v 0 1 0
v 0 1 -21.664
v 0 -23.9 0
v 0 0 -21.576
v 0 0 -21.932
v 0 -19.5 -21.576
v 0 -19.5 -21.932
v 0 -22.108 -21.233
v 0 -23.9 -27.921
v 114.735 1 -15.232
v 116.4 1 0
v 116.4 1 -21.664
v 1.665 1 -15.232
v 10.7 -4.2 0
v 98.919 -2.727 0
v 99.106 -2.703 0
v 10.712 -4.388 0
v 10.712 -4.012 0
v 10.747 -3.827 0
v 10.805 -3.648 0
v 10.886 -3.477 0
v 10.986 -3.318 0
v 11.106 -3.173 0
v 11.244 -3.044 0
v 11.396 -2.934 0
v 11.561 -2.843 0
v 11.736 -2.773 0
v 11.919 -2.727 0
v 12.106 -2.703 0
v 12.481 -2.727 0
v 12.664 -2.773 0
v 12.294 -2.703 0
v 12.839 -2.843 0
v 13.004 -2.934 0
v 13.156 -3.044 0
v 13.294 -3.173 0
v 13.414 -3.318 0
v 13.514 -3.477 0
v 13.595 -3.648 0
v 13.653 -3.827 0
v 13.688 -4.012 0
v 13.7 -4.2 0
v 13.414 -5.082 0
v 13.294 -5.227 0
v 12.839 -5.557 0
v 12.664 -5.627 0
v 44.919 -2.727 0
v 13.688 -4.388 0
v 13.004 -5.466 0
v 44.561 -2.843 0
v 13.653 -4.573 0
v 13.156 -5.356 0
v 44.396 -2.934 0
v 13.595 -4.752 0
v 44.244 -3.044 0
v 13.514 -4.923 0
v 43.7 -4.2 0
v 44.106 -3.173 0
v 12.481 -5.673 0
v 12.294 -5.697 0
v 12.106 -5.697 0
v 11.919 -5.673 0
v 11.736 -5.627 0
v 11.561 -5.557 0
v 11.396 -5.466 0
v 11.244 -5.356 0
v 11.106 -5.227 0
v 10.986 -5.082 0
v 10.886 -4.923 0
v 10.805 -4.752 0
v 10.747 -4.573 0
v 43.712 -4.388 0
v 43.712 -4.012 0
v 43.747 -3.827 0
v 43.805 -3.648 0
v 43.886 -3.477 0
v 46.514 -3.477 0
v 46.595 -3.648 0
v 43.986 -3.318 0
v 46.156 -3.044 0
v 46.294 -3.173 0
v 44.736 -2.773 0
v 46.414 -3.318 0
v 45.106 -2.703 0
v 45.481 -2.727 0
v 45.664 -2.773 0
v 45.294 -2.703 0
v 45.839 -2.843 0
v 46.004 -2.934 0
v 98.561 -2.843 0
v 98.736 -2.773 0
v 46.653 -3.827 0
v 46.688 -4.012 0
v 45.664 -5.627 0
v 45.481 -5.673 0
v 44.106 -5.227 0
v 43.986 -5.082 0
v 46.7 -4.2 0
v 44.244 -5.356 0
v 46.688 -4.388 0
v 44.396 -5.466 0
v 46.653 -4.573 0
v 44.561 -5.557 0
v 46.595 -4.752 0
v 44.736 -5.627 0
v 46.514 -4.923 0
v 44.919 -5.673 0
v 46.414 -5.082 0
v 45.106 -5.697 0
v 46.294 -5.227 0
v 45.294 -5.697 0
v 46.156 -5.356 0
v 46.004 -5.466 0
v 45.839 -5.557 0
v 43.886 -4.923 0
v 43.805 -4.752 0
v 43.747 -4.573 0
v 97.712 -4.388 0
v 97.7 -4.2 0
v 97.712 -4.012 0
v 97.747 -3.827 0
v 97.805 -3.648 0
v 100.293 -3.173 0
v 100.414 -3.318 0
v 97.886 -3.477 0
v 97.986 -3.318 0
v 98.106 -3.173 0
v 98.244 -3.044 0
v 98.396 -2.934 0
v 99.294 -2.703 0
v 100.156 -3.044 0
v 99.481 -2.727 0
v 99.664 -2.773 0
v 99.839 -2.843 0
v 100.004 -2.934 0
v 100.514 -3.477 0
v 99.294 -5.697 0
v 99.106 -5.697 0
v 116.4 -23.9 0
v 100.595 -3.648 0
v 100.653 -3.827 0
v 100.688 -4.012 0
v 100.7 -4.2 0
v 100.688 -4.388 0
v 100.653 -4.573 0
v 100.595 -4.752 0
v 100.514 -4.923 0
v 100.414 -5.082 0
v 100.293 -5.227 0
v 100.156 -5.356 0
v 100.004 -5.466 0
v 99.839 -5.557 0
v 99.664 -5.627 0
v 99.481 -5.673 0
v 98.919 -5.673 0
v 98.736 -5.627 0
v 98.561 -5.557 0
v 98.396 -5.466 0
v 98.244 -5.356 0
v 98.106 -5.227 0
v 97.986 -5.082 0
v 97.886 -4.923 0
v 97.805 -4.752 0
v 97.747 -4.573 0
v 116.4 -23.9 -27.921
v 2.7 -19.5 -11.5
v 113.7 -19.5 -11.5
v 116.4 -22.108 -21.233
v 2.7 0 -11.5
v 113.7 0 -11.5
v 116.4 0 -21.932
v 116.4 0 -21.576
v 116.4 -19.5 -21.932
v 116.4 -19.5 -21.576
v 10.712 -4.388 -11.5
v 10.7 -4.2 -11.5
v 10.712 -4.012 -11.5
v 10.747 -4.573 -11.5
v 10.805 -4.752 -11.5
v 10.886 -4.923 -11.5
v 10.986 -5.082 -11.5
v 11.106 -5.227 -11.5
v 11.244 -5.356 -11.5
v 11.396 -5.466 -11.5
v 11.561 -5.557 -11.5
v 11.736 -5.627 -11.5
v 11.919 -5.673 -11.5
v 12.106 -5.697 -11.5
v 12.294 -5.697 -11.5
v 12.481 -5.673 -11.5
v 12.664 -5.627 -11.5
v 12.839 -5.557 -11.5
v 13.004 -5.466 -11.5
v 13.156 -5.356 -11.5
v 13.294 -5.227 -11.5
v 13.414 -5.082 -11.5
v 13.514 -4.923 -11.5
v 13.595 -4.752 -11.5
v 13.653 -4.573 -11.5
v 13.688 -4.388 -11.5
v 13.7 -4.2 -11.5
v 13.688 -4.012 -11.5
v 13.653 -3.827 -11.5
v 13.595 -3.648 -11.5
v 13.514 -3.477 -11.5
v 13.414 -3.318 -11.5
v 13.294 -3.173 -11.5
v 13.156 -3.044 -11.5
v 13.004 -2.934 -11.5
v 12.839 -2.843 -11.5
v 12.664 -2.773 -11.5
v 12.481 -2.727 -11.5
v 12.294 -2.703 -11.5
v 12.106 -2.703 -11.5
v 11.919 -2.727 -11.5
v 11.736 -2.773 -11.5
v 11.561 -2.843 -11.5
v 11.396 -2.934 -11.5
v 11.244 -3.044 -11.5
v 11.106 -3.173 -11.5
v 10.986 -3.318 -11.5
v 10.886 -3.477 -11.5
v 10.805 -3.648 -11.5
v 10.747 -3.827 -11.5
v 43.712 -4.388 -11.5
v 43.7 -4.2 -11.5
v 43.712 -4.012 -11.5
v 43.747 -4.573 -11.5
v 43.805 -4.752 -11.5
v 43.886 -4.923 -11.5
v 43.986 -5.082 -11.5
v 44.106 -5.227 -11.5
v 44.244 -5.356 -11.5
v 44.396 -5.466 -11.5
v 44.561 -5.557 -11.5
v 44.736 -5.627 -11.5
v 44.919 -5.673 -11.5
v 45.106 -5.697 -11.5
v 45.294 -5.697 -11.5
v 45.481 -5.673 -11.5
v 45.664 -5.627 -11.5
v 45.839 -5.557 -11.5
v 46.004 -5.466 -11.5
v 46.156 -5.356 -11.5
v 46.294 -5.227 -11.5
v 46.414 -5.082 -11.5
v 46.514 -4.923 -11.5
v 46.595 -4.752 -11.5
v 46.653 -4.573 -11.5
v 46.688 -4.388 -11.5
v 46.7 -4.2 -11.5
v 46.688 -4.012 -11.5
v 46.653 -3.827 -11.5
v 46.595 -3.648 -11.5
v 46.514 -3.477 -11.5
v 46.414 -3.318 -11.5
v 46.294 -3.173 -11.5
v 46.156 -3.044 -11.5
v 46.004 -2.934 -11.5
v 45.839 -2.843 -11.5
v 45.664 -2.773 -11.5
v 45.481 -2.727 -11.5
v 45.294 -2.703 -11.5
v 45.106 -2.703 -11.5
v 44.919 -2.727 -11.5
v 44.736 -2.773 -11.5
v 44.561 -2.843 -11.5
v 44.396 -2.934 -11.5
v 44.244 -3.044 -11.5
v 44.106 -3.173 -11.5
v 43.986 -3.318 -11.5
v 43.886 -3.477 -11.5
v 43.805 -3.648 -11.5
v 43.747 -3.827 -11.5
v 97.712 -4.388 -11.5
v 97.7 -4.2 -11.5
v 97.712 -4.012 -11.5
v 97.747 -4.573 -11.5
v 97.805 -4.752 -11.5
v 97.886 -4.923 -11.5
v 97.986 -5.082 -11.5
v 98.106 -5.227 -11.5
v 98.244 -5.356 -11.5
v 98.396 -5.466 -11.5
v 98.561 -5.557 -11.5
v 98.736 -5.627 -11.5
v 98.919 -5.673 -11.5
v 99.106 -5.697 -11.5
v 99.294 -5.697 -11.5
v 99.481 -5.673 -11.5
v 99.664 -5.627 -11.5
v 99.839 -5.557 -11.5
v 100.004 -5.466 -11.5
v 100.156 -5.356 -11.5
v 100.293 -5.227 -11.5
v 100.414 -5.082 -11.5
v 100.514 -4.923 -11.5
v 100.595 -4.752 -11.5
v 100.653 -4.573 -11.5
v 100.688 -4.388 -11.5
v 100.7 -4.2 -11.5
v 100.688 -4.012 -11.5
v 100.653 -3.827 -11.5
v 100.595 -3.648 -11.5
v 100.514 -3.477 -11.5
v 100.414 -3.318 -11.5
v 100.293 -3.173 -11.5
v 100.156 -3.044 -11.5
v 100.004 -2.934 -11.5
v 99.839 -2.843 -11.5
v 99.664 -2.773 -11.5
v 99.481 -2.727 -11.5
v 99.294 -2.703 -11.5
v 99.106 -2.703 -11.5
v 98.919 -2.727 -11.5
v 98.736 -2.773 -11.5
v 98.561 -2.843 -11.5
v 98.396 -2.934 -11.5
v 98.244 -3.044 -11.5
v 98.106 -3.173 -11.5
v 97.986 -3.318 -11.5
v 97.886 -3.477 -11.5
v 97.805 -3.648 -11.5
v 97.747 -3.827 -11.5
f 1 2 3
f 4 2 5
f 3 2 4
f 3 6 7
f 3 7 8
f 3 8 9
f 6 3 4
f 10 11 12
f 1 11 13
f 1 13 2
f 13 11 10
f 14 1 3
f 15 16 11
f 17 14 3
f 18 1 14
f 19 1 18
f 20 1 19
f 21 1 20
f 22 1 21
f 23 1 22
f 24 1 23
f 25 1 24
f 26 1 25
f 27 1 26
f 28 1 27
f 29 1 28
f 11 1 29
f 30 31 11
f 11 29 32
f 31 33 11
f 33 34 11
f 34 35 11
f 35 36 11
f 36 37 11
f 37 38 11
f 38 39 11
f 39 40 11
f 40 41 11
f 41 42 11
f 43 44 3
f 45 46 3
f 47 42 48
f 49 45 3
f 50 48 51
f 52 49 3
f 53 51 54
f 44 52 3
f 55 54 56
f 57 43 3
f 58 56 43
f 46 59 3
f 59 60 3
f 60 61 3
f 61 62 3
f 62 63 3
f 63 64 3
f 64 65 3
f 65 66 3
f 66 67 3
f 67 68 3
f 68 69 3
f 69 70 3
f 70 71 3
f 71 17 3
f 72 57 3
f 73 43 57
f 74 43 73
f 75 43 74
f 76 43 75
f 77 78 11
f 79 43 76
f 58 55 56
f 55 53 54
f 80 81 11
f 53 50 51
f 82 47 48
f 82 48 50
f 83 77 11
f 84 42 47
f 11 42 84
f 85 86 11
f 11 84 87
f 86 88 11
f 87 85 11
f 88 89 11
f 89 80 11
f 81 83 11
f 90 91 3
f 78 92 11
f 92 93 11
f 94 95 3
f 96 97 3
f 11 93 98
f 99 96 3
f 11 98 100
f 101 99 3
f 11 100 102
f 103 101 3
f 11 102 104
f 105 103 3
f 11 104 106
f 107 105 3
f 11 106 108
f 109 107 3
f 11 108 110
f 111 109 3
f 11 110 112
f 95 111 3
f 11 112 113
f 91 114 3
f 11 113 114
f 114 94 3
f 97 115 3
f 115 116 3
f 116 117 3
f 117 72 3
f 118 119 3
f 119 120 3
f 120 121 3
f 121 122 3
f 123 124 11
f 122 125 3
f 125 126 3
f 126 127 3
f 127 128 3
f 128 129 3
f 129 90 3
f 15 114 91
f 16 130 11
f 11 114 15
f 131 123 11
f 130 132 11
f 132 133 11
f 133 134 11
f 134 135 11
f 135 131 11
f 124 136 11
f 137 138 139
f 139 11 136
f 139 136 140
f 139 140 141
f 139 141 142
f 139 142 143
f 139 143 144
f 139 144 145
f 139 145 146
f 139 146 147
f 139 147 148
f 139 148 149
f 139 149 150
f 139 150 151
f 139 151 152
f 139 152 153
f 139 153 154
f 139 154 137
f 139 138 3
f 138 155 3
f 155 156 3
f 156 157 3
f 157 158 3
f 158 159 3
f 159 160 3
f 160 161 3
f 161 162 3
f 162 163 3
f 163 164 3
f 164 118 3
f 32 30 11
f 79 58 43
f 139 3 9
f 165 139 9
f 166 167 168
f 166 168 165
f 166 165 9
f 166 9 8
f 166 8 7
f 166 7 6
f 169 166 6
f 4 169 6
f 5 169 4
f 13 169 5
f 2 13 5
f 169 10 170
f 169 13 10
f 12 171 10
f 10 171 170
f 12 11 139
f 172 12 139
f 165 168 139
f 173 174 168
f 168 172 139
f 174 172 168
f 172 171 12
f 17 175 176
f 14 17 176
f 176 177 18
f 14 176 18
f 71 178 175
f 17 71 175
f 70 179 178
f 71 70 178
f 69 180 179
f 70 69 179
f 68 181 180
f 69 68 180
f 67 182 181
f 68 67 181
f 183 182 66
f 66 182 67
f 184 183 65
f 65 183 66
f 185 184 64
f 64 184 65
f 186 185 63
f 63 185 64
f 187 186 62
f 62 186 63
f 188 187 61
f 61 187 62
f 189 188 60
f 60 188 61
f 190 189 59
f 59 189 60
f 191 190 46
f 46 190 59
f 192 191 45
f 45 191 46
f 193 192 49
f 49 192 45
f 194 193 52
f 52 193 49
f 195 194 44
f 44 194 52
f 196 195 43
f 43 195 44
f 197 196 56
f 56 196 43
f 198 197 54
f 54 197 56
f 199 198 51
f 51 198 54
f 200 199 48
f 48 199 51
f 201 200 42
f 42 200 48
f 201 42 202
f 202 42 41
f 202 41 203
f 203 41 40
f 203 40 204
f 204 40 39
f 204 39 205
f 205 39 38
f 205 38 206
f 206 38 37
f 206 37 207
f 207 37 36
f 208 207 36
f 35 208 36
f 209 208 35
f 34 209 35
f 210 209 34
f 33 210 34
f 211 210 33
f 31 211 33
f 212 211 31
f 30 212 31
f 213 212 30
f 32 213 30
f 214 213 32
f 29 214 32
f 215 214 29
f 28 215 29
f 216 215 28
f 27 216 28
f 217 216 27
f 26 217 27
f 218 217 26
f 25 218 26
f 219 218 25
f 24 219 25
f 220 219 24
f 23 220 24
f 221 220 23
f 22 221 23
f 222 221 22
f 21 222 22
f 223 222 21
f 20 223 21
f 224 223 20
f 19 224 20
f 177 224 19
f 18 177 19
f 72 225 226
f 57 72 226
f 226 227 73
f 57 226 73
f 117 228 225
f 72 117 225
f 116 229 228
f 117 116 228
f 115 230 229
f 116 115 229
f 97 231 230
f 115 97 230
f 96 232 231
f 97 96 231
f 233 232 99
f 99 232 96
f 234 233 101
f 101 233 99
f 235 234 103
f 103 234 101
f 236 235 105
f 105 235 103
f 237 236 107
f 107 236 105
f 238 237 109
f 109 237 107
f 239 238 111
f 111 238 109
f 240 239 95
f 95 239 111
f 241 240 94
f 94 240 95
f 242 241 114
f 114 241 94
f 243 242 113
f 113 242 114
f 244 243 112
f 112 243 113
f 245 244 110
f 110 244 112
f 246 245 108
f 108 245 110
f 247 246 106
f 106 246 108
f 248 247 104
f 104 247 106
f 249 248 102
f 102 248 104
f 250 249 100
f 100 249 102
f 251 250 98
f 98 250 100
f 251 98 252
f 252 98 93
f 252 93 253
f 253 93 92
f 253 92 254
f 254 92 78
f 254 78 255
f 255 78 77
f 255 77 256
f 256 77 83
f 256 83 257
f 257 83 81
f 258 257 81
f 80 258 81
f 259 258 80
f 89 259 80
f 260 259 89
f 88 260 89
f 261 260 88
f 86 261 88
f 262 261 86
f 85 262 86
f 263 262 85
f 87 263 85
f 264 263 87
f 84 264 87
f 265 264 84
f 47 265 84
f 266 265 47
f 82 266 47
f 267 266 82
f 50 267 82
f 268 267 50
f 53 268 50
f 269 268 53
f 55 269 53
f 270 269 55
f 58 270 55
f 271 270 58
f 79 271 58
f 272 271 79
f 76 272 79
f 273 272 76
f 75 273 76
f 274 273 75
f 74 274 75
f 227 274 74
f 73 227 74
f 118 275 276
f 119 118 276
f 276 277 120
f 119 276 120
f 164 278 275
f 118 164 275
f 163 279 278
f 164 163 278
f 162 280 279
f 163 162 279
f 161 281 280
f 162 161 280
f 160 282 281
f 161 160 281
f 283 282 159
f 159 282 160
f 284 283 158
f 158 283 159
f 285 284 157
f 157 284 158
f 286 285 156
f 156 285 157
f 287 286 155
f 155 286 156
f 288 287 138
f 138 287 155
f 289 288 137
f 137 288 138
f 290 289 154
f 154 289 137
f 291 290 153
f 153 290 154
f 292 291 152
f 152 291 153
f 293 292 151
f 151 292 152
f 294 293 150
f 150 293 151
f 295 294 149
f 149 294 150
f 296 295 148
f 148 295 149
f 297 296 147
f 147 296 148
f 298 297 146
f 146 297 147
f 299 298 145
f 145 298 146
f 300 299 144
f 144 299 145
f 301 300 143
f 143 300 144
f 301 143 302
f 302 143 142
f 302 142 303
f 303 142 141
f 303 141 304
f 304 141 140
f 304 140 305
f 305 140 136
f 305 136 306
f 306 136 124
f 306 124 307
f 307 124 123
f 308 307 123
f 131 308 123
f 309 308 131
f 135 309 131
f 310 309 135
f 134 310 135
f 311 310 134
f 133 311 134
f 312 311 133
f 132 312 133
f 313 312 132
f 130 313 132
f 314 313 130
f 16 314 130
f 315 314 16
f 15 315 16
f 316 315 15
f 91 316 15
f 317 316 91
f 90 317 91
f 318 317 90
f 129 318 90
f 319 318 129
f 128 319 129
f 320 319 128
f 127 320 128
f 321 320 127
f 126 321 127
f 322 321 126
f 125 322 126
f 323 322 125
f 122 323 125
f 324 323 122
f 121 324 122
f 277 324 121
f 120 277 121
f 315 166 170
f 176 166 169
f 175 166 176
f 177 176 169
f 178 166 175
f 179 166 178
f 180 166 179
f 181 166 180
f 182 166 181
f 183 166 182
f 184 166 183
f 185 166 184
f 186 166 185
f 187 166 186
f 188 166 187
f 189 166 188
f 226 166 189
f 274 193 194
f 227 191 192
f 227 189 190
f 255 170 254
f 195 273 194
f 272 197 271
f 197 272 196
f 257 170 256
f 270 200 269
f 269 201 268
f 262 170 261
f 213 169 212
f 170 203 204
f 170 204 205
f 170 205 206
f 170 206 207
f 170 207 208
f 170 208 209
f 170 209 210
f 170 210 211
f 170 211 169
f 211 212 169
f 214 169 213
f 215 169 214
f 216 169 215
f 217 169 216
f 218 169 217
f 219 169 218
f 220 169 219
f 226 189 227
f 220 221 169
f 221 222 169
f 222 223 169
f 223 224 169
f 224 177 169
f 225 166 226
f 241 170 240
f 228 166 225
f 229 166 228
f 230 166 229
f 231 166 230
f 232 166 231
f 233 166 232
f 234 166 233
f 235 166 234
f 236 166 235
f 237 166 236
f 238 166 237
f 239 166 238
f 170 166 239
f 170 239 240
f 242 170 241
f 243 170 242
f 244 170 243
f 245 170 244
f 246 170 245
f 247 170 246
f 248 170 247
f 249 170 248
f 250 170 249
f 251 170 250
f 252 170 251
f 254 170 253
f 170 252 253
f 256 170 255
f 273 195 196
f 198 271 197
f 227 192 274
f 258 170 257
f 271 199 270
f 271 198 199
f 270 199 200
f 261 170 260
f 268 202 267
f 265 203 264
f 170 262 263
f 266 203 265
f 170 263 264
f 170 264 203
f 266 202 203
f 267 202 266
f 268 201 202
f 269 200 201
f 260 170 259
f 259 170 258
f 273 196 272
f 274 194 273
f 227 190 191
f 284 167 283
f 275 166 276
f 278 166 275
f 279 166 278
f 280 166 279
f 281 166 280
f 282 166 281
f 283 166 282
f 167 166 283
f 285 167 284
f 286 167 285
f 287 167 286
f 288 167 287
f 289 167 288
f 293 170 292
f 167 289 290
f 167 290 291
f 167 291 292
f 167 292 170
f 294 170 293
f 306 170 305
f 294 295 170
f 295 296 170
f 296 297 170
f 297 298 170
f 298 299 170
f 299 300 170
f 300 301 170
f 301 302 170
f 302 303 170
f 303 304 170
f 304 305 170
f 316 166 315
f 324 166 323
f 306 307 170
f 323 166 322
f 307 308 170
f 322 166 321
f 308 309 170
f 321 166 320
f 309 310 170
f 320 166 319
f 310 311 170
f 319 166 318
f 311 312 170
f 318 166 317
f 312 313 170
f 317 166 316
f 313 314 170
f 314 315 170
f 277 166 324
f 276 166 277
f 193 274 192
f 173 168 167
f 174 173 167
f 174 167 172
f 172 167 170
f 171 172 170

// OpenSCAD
$fn = 50;

bia = 17.5;
lia = 109;

sp = 1.0;

d = 0.7;
du = 2.7;

h = 10.1;
b = bia + 0 + 2*sp;
l = lia + 0 + 2*sp;


ba = 7;
la = 10;

a1 = 4 +1.5 + sp+d;
a2 = a1 + 33;
a3 = a2 + 54;





hi = 10;

ang = 15;
rk = 3/2;
angu=ang;

sc =1.7;

rotate([180,0,0])
difference(){
	translate([0,-du+sc,0]) cube([l+2*du,b+2*du,h+2*d+hi+10*sc]);
	translate([a1+la/2,d+ba/2,-0.5*d]) cylinder(r=rk,h=2*h+3*d+10*sc);
	translate([a2+la/2,d+ba/2,-0.5*d]) cylinder(r=rk,h=2*h+3*d+10*sc);
	translate([a3+la/2,d+ba/2,-0.5*d]) cylinder(r=rk,h=2*h+3*d+10*sc);

	translate([du,0,h+2*d]) cube([l,b,h+2*hi+10*sc]);
	translate([du,0,h+2*d]) rotate([0,-ang,0]) cube([l,b,h+2*hi+10*sc]);
	translate([du+l,0,h+2*d]) rotate([0,ang,0]) translate([-l,0,0]) cube([l,b,h+2*hi+10*sc]);
	
	translate([0,b,h+2*d]) rotate([-ang,0,0]) translate([0,-b,0]){
		translate([du,0,0]) cube([l,b,h+2*hi+10*sc]);
		translate([du,0,0]) rotate([0,-ang,0]) cube([l,b,h+2*hi+10*sc]);
		translate([du+l,0,0]) rotate([0,ang,0]) translate([-l,0,0]) cube([l,b,h+2*hi+10*sc]);
	}

	translate([0,0,h+2*d]) rotate([angu,0,0]){
		translate([du,0,0]) cube([l,b,h+2*hi+10*sc]);
		translate([du,0,0]) rotate([0,-ang,0]) cube([l,b,h+2*hi+10*sc]);
		translate([du+l,0,0]) rotate([0,ang,0]) translate([-l,0,0]) cube([l,b,h+2*hi+10*sc]);
	}

}
